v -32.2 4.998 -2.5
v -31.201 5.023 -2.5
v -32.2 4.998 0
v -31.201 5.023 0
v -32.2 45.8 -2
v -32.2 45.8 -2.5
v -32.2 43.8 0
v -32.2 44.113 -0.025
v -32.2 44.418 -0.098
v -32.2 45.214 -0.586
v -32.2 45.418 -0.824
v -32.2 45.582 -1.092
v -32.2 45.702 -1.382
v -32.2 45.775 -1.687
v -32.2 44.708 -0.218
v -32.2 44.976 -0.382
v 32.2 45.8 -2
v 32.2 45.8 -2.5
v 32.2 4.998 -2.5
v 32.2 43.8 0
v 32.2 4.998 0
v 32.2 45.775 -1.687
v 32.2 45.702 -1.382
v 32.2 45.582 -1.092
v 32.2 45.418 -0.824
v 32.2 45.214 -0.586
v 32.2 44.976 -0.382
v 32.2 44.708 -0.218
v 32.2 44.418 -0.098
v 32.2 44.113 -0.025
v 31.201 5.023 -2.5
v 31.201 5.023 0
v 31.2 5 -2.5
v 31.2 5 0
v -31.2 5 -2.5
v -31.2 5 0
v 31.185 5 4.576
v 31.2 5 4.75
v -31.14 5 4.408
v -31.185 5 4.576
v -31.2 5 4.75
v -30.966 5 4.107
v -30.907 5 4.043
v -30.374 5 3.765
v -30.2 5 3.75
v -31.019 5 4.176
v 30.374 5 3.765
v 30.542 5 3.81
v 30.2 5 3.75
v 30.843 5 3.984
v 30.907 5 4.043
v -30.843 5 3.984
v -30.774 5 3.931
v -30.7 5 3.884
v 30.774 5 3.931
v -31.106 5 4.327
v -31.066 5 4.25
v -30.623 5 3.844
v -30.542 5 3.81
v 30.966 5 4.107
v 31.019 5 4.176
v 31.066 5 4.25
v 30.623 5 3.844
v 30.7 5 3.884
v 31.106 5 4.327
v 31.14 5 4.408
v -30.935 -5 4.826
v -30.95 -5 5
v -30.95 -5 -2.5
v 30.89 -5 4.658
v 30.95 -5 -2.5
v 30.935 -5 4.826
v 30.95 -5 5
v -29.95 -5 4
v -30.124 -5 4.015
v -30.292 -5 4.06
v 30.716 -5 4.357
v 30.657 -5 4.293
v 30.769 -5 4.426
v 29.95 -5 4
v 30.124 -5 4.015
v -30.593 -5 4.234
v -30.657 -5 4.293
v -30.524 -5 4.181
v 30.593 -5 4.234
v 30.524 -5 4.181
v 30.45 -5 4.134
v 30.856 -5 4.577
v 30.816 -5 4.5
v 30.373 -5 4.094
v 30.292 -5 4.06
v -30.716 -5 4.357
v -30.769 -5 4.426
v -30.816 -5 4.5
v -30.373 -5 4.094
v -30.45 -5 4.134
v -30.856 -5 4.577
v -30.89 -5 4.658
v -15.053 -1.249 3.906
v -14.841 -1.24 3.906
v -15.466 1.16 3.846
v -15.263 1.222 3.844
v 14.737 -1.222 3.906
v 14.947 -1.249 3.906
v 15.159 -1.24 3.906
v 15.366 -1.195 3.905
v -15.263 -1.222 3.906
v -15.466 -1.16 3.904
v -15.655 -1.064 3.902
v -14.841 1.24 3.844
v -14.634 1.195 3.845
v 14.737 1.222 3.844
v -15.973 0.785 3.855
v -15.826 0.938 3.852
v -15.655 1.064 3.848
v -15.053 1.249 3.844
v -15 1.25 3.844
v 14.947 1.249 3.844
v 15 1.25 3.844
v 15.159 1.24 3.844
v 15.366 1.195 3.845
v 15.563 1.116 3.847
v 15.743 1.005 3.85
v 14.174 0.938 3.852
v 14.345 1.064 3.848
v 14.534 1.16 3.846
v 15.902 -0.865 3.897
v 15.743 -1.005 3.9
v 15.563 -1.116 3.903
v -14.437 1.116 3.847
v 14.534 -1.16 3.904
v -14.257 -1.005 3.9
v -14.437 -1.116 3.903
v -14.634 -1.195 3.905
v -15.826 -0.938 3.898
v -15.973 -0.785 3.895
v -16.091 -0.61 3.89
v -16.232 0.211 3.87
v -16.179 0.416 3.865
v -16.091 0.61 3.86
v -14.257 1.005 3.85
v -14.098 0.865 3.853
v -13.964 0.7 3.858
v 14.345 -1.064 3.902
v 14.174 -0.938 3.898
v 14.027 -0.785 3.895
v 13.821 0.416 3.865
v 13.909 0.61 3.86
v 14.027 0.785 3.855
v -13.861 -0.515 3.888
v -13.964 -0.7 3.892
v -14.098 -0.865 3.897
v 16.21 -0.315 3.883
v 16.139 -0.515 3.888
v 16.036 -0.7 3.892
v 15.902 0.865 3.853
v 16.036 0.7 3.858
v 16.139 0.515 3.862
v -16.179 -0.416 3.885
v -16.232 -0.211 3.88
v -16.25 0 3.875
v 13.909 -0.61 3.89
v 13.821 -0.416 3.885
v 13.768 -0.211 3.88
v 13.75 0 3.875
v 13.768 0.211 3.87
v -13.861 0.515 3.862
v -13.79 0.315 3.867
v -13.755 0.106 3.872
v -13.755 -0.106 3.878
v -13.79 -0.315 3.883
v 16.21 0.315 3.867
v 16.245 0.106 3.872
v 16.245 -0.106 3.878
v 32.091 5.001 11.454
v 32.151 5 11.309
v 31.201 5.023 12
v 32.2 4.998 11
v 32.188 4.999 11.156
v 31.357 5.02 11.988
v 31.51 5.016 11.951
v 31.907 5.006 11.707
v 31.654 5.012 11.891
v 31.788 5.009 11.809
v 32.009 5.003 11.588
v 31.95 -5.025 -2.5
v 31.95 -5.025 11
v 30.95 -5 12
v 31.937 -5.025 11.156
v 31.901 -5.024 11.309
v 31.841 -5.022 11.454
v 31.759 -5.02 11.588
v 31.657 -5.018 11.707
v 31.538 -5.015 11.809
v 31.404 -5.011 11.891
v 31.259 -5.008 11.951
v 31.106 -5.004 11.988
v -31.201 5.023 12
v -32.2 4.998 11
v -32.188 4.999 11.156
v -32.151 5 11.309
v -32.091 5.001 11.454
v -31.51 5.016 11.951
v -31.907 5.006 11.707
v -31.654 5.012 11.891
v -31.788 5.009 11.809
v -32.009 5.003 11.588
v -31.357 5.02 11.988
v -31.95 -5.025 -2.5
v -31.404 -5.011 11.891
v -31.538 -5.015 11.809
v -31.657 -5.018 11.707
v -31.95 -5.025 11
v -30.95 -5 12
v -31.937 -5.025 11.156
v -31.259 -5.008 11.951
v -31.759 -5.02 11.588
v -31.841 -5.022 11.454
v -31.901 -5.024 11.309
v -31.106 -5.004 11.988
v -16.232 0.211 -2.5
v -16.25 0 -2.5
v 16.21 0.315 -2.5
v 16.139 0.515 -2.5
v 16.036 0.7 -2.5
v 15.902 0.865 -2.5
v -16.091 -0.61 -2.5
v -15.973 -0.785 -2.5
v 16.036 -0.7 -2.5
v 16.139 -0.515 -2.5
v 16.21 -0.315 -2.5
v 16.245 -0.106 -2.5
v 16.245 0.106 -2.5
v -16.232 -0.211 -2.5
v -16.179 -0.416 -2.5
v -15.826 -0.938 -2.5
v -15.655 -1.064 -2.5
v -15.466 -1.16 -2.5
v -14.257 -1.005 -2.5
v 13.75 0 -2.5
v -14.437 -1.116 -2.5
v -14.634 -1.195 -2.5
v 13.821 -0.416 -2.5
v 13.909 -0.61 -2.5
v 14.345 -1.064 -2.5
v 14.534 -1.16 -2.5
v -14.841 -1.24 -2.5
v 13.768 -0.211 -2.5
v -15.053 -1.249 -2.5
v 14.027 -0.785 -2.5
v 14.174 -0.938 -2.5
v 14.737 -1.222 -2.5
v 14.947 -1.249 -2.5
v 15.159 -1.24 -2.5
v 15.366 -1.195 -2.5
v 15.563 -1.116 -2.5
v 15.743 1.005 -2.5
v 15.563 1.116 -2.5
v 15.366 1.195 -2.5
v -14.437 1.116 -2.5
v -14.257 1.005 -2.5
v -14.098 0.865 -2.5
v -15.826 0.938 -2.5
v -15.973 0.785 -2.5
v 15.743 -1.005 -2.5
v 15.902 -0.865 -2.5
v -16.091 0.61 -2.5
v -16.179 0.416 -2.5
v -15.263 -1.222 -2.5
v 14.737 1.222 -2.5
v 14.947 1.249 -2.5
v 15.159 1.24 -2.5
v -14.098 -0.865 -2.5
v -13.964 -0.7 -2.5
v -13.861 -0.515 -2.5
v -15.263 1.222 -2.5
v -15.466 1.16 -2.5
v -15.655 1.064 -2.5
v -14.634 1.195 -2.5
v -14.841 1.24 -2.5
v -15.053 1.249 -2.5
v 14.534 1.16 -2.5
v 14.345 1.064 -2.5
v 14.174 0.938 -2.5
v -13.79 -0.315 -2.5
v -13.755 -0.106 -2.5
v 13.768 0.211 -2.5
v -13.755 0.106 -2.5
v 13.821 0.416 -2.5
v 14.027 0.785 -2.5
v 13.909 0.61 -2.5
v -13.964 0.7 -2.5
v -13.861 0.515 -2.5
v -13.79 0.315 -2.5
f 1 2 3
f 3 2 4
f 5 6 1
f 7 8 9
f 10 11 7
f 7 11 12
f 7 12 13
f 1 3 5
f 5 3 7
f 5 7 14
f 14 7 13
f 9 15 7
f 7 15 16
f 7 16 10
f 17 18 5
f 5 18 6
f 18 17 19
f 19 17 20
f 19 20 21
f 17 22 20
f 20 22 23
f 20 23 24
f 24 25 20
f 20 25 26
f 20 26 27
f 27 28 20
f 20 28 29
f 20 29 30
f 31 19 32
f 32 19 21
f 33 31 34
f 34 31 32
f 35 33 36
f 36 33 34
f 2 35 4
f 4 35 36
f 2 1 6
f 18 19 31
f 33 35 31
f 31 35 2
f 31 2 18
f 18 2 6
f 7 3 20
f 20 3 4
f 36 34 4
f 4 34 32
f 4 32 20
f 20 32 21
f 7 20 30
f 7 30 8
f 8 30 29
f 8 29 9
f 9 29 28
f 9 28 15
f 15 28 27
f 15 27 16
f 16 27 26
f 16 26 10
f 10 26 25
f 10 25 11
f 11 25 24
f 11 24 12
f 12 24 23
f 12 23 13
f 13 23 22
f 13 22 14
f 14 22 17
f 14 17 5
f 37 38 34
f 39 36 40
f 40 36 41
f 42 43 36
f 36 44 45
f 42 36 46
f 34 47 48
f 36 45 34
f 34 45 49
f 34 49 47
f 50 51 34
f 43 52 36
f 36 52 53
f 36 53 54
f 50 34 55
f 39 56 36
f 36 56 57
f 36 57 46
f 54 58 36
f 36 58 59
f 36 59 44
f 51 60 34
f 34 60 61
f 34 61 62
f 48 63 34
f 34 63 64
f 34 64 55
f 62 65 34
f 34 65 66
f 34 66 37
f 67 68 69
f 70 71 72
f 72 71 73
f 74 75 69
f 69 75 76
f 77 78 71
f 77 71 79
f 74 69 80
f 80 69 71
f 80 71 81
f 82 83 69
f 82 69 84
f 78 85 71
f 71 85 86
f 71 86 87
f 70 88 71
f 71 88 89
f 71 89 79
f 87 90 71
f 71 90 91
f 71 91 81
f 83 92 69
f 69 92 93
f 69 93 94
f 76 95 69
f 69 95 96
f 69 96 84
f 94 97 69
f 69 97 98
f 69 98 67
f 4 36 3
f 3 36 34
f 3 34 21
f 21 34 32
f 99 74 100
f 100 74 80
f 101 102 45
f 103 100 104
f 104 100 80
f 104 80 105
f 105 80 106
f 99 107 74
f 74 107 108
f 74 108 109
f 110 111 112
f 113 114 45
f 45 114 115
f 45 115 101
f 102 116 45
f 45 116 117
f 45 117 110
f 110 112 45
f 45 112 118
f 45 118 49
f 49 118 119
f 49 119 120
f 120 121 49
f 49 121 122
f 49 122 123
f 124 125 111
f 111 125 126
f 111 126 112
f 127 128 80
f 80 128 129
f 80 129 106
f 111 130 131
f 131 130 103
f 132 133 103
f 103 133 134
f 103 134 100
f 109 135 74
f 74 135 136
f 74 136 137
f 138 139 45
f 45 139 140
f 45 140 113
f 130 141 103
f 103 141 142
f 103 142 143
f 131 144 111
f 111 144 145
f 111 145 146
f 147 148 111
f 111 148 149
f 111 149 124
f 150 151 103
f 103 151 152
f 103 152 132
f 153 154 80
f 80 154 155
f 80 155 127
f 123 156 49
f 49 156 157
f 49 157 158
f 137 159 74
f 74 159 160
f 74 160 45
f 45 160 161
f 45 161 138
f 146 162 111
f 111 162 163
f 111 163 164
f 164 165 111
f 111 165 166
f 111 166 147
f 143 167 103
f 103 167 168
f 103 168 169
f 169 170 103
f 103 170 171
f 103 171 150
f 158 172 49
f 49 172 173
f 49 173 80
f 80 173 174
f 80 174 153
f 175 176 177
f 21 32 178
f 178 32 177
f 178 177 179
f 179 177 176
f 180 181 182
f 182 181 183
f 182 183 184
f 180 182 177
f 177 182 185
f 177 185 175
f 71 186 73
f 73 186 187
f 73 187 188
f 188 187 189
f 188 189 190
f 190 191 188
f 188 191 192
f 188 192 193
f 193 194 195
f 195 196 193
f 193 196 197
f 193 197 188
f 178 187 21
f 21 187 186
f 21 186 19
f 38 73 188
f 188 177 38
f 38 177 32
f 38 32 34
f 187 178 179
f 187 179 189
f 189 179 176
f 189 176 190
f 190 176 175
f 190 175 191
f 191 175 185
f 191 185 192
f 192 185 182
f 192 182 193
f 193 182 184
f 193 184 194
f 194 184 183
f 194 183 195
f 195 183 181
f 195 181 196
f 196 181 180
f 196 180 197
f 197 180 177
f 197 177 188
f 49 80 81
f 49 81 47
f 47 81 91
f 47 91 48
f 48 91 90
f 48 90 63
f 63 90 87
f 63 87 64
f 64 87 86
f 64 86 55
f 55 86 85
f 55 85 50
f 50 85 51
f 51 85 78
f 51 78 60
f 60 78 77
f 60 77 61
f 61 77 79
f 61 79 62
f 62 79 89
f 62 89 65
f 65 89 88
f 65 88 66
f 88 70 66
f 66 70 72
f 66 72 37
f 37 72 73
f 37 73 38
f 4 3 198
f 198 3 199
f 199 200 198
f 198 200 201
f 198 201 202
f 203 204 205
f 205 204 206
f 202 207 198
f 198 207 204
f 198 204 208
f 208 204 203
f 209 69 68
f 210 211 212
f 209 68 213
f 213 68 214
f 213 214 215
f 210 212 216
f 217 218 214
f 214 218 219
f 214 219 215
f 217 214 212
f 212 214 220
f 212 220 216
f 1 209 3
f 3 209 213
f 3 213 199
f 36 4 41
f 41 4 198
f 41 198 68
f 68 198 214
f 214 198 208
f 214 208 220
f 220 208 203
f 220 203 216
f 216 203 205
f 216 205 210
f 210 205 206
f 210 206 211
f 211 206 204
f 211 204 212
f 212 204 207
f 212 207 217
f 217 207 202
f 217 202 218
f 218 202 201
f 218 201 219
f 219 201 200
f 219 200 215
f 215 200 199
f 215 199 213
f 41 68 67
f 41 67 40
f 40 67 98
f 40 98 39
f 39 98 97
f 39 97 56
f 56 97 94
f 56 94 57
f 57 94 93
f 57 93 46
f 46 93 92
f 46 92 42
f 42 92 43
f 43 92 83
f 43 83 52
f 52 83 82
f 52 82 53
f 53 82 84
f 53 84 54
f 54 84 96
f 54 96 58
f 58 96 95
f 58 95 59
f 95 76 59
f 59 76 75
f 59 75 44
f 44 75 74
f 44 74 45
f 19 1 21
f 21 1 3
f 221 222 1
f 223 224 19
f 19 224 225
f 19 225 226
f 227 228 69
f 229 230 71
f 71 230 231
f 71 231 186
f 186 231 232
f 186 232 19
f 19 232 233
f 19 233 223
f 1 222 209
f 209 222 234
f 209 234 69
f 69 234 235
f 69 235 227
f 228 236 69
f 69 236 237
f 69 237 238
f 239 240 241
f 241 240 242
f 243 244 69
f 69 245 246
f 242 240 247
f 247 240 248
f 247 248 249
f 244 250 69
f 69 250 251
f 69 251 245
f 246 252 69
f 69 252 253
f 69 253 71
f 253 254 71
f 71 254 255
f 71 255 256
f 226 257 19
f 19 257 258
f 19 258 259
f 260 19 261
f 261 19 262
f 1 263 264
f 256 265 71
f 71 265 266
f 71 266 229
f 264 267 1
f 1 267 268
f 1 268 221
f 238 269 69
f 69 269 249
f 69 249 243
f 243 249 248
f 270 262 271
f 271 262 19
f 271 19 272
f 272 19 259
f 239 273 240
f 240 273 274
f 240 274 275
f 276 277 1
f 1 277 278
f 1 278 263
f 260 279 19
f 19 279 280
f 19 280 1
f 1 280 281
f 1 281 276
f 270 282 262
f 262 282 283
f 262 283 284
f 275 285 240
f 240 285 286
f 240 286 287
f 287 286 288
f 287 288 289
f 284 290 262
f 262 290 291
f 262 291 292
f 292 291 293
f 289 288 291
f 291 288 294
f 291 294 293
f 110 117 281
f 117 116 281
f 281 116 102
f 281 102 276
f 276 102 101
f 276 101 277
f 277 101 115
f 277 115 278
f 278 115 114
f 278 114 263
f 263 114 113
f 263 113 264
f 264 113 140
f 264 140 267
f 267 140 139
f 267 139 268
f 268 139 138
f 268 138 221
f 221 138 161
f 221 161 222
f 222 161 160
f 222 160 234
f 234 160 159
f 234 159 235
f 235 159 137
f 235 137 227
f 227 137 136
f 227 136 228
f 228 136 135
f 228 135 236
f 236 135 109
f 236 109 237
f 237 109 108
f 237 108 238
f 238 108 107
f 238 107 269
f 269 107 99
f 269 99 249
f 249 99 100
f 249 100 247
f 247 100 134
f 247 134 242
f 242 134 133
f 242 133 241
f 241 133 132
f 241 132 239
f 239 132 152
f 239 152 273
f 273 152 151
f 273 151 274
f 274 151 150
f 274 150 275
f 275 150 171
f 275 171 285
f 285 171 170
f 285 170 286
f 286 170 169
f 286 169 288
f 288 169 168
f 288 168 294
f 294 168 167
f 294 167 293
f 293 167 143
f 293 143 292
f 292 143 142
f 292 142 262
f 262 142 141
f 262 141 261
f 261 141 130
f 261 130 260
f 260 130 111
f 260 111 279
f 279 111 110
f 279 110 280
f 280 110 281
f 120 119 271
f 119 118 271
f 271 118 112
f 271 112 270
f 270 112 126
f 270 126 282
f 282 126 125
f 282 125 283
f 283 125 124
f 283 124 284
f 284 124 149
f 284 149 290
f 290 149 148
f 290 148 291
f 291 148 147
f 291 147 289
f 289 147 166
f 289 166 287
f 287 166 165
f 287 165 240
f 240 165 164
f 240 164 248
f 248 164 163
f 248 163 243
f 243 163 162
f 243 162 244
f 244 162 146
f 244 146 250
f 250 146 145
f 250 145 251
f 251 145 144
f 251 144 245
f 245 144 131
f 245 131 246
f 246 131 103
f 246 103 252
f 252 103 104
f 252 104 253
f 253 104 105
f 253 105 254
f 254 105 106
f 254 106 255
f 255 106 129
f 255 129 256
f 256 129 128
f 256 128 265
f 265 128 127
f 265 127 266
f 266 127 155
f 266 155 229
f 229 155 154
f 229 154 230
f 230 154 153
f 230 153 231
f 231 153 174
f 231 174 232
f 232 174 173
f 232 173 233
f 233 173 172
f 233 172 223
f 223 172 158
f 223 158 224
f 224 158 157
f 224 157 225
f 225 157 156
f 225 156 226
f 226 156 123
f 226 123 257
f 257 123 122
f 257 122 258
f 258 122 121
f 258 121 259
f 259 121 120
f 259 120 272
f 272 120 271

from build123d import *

# Parameters (mm, degrees)
BOSS_EXTRUDE1_DEPTH                  = 4
CUT_EXTRUDE1_DEPTH                   = 32.850274724
CUT_EXTRUDE1_DEPTH_BACK              = 32.850274724
SKETCH3_W                            = 12
SKETCH3_H                            = 10.026550622
BOSS_EXTRUDE2_DEPTH                  = 1
FILLET1_R                            = 1
BOSS_EXTRUDE3_DEPTH                  = 2.5
FILLET2_R                            = 2
SKETCH11_W                           = 1.25
SKETCH11_H                           = 14.5
TAP_DRILL_FOR_M3X0_5_TAP3_AT_2_COUNT = 2
TAP_DRILL_FOR_M3X0_5_TAP3_AT_2_PITCH = 30


with BuildPart() as part:
    # Sketch1 → Boss-Extrude1 (new body)
    with BuildSketch(Plane.XY):
        Polygon((-30.95, -5), (0, -5), (0, 5), (-31.2, 5), align=None)
        Polygon((0, 5), (0, -5), (30.95, -5), (31.2, 5), align=None)
    extrude(amount=BOSS_EXTRUDE1_DEPTH)

    # Sketch2 → Cut-Extrude1 (cut, two sides: drawn at the far end of the back side and taken through both)
    with BuildSketch(Plane(origin=(0, 0, 0), x_dir=(0, 0, -1), z_dir=(1, 0, 0)).offset(-CUT_EXTRUDE1_DEPTH_BACK)):
        Polygon((-4, -5), (-3.75, 5), (-4, 5), align=None)
    extrude(amount=CUT_EXTRUDE1_DEPTH + CUT_EXTRUDE1_DEPTH_BACK, mode=Mode.SUBTRACT)

    # Sketch3 → Boss-Extrude2 (add)
    with BuildSketch(Plane(origin=(31.055590256, -0.776389756, 0), x_dir=(0, 0, -1), z_dir=(0.9996876464081229, -0.02499219116020312, 0))):
        with Locations((-6, 0.788345395)):
            Rectangle(SKETCH3_W, SKETCH3_H)
    extrude(amount=BOSS_EXTRUDE2_DEPTH)

    # Fillet1
    fillet1_edges = [part.edges().sort_by_distance(p)[0] for p in [
        (31.075, 0, 3.875),
        (32.074980381, -0.013282795, 12),
    ]]
    fillet(fillet1_edges, radius=FILLET1_R - 0.0001)  # a hair under: the kernel refuses the full size

    # Mirror1: part across plane


with BuildPart() as part_1:
    add(part.part)
    add(part.part.mirror(Plane(origin=(0, 0, 0), x_dir=(0, 0, 1), z_dir=(1, 0, 0))))

    # Sketch4 → Boss-Extrude3 (add)
    with BuildSketch(Plane(origin=(0, 0, 0), x_dir=(-1, 0, 0), z_dir=(0, 0, -1))):
        Polygon((-32.200273116, 45.8), (-32.200273116, 4.998426601), (-31.20058547, 5.023418793), (-31.2, 5), (31.2, 5), (31.20058547, 5.023418793), (32.200273116, 4.998426601), (32.200273116, 45.8), align=None)
        Polygon((32.200273116, 4.998426601), (-32.200273116, 4.998426601), (-31.949687646, -5.024992191), (-30.95, -5), (30.95, -5), (31.949687646, -5.024992191), align=None)
    extrude(amount=BOSS_EXTRUDE3_DEPTH)


with BuildPart() as boss_extrude3_piece_1:
    # of the separate pieces the step leaves, piece 1, a body of its own (boss_extrude3_pieces)
    add(part_1.part.solids().sort_by_distance((32.200273116, 45.8, 0))[0])

    # Fillet2
    fillet2_edges = [boss_extrude3_piece_1.edges().sort_by_distance(p)[0] for p in [
        (0, 45.8, 0),
    ]]
    fillet(fillet2_edges, radius=FILLET2_R)


with BuildPart() as boss_extrude3_piece_2:
    # of the separate pieces the step leaves, piece 2, a body of its own (boss_extrude3_pieces)
    add(part_1.part.solids().sort_by_distance((-30.200412322, 5, 3.75))[0])

    # Sketch11 → Tap Drill for M3x0.5 Tap3 (revolve, cut)
    with BuildSketch(Plane(origin=(15, 0, -2.5), x_dir=(0, 1, 0), z_dir=(1, 0, 0))):
        with Locations((0.625, 7.25)):
            Rectangle(SKETCH11_W, SKETCH11_H)
    tap_drill_for_m3x0_5_tap3 = revolve(axis=Axis((15, 0, -8.85), (0, 0, 1)), mode=Mode.SUBTRACT)

    # Tap Drill for M3x0.5 Tap3 at 2: Tap Drill for M3x0.5 Tap3 ×2
    with Locations(*[(-i * TAP_DRILL_FOR_M3X0_5_TAP3_AT_2_PITCH, 0, 0) for i in range(1, TAP_DRILL_FOR_M3X0_5_TAP3_AT_2_COUNT)]):
        add(tap_drill_for_m3x0_5_tap3, mode=Mode.SUBTRACT)


solid = Compound([boss_extrude3_piece_1.part, boss_extrude3_piece_2.part])
